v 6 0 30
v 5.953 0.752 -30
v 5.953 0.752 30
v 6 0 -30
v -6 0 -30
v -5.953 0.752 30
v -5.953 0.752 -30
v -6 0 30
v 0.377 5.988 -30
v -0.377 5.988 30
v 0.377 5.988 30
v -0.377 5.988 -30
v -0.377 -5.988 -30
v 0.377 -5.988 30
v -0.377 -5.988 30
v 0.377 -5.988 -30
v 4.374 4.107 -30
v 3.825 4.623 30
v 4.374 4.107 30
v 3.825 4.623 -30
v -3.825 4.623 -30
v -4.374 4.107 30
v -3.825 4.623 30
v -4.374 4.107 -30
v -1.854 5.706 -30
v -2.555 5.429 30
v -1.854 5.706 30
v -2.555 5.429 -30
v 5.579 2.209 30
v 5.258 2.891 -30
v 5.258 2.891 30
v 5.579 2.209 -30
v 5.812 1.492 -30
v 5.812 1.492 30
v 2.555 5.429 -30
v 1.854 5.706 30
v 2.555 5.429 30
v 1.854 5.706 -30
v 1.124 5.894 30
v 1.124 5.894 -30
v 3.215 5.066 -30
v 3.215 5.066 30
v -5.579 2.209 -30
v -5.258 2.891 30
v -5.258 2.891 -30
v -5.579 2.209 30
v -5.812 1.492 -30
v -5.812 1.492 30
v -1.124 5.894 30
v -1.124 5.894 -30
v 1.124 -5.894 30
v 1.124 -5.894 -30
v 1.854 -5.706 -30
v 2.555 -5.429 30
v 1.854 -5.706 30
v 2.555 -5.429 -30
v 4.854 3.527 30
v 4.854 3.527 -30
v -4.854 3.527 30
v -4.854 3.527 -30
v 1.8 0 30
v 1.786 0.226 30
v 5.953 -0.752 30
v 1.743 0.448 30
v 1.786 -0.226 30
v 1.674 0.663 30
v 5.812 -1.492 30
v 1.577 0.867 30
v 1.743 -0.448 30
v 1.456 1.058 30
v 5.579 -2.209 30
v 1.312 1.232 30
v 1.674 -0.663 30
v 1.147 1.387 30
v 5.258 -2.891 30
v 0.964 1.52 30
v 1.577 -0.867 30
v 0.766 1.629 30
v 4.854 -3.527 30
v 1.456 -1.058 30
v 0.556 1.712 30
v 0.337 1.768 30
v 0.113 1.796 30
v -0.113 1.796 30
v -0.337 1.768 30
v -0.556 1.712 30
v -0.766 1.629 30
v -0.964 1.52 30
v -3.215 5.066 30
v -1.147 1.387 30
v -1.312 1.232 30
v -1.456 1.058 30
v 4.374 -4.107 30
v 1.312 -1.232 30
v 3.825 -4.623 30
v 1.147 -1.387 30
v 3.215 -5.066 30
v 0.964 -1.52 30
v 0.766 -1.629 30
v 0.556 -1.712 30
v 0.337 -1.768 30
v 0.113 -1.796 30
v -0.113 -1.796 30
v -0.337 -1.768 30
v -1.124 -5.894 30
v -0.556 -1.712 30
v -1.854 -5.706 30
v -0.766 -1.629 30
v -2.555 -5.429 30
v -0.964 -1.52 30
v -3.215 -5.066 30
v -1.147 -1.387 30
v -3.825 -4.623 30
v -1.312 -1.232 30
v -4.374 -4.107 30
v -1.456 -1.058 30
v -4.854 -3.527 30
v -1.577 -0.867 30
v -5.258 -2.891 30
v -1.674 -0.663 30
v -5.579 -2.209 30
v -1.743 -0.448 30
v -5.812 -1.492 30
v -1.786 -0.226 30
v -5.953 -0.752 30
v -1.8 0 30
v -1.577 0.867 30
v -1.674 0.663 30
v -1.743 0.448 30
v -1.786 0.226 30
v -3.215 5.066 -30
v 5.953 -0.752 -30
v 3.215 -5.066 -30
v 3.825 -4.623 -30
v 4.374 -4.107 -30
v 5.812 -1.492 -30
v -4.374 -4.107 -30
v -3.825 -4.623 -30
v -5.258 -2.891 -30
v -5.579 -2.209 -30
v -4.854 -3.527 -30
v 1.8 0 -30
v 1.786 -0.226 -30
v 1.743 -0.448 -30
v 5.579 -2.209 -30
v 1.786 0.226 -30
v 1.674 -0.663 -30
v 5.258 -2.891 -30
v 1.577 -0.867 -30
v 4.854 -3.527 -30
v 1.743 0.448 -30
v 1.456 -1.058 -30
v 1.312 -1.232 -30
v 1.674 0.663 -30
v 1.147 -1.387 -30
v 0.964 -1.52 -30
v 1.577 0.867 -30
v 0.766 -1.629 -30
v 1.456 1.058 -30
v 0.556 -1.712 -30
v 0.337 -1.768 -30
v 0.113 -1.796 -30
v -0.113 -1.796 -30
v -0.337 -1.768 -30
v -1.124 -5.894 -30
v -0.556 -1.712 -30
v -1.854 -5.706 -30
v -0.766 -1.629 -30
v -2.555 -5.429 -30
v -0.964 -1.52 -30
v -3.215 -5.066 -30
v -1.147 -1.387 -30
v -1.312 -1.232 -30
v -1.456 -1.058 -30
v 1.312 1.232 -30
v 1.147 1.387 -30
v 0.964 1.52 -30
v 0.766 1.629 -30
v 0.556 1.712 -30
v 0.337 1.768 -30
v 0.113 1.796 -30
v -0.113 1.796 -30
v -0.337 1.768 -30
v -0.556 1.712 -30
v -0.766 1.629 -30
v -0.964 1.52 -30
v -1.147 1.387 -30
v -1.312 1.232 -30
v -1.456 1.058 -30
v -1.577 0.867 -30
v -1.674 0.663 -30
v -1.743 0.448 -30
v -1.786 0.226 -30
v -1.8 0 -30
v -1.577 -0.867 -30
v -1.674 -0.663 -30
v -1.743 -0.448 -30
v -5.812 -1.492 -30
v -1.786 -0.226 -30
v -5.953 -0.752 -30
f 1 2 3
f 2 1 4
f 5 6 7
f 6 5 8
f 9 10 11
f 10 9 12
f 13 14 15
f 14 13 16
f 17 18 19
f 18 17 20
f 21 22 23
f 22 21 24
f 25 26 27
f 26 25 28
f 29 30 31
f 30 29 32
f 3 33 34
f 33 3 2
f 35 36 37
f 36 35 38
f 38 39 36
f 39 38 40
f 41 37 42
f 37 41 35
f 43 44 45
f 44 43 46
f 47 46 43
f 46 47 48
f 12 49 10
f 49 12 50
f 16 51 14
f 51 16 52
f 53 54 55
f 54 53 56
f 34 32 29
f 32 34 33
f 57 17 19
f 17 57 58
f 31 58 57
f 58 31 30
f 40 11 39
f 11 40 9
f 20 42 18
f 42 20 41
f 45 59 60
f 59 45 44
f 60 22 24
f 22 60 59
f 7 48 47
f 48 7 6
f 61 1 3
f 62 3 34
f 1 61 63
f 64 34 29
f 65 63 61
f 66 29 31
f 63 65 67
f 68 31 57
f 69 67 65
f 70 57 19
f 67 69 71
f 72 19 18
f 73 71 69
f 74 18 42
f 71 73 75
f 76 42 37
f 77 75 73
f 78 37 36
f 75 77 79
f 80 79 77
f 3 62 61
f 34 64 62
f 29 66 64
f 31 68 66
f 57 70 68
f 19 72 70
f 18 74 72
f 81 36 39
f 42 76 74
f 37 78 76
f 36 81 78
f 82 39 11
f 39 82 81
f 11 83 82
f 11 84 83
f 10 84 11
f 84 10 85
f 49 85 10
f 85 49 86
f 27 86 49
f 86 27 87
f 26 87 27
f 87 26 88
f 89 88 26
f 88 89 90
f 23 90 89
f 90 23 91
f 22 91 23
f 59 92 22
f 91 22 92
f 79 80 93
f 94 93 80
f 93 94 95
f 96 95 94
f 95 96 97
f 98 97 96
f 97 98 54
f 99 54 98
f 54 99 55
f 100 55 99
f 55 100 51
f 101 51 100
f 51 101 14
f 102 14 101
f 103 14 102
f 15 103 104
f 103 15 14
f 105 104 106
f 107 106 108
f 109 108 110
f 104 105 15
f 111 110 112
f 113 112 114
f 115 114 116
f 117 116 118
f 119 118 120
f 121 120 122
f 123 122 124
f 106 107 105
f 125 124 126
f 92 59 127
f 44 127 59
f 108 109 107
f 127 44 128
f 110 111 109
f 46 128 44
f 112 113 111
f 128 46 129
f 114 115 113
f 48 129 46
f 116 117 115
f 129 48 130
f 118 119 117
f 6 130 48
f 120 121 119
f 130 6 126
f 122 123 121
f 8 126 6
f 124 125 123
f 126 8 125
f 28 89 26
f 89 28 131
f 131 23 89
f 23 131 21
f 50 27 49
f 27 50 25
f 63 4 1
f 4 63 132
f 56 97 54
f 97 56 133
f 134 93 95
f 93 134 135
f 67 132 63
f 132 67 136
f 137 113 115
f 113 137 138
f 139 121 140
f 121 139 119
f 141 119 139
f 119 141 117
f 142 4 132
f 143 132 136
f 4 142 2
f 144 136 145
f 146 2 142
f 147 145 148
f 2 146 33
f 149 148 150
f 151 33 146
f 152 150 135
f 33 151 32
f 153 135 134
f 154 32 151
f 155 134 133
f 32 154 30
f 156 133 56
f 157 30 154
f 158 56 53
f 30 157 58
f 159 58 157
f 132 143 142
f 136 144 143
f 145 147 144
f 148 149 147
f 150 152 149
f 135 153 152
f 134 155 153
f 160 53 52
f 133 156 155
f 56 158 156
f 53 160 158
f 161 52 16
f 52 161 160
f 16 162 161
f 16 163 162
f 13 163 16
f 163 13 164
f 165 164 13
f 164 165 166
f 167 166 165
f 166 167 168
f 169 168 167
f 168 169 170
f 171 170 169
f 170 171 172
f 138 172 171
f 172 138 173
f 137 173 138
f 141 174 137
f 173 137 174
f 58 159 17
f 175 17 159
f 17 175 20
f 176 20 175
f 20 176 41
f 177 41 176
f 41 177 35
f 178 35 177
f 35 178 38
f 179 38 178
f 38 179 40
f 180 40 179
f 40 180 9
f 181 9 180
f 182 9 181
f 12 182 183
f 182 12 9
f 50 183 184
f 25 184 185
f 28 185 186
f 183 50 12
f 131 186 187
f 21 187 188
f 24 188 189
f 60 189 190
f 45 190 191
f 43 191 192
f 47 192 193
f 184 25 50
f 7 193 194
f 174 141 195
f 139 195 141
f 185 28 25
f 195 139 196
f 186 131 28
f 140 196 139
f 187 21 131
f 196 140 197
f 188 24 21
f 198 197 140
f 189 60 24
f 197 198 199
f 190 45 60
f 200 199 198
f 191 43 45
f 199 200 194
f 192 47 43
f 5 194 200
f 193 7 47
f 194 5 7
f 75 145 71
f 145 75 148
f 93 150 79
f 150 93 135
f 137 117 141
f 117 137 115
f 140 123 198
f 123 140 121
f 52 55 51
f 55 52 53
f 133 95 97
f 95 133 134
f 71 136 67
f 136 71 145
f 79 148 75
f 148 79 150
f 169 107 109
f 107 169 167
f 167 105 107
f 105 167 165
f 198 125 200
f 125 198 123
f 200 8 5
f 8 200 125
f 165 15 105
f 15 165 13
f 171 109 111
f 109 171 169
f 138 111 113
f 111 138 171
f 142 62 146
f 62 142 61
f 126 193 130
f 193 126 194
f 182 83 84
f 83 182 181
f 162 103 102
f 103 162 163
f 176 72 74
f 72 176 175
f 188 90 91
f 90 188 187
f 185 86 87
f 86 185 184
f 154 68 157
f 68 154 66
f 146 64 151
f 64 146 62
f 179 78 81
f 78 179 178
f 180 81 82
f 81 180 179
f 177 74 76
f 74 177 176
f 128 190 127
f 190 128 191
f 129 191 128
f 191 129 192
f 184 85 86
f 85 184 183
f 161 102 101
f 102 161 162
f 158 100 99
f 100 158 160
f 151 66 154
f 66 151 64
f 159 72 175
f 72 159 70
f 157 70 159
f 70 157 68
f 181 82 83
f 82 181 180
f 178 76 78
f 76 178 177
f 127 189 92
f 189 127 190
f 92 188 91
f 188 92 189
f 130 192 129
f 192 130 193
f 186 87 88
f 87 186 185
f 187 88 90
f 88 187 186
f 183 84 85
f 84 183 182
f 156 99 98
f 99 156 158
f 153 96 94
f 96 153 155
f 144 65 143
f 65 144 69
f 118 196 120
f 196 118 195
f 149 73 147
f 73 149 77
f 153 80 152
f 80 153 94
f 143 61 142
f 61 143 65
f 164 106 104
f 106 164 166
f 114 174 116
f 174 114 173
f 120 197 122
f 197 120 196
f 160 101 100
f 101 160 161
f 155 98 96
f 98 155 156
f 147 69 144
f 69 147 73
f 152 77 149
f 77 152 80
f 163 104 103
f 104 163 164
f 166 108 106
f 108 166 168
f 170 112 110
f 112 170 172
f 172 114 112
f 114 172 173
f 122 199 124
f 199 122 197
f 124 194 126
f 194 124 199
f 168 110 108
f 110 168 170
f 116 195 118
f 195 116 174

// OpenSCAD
$fn = 50;


difference() {
	union() {
		translate(v = [0, 0, -30.0000000000]) {
			cylinder(h = 60, r = 6.0000000000);
		}
	}
	union() {
		translate(v = [0, 0, -100.0000000000]) {
			cylinder(h = 200, r = 1.8000000000);
		}
	}
}
